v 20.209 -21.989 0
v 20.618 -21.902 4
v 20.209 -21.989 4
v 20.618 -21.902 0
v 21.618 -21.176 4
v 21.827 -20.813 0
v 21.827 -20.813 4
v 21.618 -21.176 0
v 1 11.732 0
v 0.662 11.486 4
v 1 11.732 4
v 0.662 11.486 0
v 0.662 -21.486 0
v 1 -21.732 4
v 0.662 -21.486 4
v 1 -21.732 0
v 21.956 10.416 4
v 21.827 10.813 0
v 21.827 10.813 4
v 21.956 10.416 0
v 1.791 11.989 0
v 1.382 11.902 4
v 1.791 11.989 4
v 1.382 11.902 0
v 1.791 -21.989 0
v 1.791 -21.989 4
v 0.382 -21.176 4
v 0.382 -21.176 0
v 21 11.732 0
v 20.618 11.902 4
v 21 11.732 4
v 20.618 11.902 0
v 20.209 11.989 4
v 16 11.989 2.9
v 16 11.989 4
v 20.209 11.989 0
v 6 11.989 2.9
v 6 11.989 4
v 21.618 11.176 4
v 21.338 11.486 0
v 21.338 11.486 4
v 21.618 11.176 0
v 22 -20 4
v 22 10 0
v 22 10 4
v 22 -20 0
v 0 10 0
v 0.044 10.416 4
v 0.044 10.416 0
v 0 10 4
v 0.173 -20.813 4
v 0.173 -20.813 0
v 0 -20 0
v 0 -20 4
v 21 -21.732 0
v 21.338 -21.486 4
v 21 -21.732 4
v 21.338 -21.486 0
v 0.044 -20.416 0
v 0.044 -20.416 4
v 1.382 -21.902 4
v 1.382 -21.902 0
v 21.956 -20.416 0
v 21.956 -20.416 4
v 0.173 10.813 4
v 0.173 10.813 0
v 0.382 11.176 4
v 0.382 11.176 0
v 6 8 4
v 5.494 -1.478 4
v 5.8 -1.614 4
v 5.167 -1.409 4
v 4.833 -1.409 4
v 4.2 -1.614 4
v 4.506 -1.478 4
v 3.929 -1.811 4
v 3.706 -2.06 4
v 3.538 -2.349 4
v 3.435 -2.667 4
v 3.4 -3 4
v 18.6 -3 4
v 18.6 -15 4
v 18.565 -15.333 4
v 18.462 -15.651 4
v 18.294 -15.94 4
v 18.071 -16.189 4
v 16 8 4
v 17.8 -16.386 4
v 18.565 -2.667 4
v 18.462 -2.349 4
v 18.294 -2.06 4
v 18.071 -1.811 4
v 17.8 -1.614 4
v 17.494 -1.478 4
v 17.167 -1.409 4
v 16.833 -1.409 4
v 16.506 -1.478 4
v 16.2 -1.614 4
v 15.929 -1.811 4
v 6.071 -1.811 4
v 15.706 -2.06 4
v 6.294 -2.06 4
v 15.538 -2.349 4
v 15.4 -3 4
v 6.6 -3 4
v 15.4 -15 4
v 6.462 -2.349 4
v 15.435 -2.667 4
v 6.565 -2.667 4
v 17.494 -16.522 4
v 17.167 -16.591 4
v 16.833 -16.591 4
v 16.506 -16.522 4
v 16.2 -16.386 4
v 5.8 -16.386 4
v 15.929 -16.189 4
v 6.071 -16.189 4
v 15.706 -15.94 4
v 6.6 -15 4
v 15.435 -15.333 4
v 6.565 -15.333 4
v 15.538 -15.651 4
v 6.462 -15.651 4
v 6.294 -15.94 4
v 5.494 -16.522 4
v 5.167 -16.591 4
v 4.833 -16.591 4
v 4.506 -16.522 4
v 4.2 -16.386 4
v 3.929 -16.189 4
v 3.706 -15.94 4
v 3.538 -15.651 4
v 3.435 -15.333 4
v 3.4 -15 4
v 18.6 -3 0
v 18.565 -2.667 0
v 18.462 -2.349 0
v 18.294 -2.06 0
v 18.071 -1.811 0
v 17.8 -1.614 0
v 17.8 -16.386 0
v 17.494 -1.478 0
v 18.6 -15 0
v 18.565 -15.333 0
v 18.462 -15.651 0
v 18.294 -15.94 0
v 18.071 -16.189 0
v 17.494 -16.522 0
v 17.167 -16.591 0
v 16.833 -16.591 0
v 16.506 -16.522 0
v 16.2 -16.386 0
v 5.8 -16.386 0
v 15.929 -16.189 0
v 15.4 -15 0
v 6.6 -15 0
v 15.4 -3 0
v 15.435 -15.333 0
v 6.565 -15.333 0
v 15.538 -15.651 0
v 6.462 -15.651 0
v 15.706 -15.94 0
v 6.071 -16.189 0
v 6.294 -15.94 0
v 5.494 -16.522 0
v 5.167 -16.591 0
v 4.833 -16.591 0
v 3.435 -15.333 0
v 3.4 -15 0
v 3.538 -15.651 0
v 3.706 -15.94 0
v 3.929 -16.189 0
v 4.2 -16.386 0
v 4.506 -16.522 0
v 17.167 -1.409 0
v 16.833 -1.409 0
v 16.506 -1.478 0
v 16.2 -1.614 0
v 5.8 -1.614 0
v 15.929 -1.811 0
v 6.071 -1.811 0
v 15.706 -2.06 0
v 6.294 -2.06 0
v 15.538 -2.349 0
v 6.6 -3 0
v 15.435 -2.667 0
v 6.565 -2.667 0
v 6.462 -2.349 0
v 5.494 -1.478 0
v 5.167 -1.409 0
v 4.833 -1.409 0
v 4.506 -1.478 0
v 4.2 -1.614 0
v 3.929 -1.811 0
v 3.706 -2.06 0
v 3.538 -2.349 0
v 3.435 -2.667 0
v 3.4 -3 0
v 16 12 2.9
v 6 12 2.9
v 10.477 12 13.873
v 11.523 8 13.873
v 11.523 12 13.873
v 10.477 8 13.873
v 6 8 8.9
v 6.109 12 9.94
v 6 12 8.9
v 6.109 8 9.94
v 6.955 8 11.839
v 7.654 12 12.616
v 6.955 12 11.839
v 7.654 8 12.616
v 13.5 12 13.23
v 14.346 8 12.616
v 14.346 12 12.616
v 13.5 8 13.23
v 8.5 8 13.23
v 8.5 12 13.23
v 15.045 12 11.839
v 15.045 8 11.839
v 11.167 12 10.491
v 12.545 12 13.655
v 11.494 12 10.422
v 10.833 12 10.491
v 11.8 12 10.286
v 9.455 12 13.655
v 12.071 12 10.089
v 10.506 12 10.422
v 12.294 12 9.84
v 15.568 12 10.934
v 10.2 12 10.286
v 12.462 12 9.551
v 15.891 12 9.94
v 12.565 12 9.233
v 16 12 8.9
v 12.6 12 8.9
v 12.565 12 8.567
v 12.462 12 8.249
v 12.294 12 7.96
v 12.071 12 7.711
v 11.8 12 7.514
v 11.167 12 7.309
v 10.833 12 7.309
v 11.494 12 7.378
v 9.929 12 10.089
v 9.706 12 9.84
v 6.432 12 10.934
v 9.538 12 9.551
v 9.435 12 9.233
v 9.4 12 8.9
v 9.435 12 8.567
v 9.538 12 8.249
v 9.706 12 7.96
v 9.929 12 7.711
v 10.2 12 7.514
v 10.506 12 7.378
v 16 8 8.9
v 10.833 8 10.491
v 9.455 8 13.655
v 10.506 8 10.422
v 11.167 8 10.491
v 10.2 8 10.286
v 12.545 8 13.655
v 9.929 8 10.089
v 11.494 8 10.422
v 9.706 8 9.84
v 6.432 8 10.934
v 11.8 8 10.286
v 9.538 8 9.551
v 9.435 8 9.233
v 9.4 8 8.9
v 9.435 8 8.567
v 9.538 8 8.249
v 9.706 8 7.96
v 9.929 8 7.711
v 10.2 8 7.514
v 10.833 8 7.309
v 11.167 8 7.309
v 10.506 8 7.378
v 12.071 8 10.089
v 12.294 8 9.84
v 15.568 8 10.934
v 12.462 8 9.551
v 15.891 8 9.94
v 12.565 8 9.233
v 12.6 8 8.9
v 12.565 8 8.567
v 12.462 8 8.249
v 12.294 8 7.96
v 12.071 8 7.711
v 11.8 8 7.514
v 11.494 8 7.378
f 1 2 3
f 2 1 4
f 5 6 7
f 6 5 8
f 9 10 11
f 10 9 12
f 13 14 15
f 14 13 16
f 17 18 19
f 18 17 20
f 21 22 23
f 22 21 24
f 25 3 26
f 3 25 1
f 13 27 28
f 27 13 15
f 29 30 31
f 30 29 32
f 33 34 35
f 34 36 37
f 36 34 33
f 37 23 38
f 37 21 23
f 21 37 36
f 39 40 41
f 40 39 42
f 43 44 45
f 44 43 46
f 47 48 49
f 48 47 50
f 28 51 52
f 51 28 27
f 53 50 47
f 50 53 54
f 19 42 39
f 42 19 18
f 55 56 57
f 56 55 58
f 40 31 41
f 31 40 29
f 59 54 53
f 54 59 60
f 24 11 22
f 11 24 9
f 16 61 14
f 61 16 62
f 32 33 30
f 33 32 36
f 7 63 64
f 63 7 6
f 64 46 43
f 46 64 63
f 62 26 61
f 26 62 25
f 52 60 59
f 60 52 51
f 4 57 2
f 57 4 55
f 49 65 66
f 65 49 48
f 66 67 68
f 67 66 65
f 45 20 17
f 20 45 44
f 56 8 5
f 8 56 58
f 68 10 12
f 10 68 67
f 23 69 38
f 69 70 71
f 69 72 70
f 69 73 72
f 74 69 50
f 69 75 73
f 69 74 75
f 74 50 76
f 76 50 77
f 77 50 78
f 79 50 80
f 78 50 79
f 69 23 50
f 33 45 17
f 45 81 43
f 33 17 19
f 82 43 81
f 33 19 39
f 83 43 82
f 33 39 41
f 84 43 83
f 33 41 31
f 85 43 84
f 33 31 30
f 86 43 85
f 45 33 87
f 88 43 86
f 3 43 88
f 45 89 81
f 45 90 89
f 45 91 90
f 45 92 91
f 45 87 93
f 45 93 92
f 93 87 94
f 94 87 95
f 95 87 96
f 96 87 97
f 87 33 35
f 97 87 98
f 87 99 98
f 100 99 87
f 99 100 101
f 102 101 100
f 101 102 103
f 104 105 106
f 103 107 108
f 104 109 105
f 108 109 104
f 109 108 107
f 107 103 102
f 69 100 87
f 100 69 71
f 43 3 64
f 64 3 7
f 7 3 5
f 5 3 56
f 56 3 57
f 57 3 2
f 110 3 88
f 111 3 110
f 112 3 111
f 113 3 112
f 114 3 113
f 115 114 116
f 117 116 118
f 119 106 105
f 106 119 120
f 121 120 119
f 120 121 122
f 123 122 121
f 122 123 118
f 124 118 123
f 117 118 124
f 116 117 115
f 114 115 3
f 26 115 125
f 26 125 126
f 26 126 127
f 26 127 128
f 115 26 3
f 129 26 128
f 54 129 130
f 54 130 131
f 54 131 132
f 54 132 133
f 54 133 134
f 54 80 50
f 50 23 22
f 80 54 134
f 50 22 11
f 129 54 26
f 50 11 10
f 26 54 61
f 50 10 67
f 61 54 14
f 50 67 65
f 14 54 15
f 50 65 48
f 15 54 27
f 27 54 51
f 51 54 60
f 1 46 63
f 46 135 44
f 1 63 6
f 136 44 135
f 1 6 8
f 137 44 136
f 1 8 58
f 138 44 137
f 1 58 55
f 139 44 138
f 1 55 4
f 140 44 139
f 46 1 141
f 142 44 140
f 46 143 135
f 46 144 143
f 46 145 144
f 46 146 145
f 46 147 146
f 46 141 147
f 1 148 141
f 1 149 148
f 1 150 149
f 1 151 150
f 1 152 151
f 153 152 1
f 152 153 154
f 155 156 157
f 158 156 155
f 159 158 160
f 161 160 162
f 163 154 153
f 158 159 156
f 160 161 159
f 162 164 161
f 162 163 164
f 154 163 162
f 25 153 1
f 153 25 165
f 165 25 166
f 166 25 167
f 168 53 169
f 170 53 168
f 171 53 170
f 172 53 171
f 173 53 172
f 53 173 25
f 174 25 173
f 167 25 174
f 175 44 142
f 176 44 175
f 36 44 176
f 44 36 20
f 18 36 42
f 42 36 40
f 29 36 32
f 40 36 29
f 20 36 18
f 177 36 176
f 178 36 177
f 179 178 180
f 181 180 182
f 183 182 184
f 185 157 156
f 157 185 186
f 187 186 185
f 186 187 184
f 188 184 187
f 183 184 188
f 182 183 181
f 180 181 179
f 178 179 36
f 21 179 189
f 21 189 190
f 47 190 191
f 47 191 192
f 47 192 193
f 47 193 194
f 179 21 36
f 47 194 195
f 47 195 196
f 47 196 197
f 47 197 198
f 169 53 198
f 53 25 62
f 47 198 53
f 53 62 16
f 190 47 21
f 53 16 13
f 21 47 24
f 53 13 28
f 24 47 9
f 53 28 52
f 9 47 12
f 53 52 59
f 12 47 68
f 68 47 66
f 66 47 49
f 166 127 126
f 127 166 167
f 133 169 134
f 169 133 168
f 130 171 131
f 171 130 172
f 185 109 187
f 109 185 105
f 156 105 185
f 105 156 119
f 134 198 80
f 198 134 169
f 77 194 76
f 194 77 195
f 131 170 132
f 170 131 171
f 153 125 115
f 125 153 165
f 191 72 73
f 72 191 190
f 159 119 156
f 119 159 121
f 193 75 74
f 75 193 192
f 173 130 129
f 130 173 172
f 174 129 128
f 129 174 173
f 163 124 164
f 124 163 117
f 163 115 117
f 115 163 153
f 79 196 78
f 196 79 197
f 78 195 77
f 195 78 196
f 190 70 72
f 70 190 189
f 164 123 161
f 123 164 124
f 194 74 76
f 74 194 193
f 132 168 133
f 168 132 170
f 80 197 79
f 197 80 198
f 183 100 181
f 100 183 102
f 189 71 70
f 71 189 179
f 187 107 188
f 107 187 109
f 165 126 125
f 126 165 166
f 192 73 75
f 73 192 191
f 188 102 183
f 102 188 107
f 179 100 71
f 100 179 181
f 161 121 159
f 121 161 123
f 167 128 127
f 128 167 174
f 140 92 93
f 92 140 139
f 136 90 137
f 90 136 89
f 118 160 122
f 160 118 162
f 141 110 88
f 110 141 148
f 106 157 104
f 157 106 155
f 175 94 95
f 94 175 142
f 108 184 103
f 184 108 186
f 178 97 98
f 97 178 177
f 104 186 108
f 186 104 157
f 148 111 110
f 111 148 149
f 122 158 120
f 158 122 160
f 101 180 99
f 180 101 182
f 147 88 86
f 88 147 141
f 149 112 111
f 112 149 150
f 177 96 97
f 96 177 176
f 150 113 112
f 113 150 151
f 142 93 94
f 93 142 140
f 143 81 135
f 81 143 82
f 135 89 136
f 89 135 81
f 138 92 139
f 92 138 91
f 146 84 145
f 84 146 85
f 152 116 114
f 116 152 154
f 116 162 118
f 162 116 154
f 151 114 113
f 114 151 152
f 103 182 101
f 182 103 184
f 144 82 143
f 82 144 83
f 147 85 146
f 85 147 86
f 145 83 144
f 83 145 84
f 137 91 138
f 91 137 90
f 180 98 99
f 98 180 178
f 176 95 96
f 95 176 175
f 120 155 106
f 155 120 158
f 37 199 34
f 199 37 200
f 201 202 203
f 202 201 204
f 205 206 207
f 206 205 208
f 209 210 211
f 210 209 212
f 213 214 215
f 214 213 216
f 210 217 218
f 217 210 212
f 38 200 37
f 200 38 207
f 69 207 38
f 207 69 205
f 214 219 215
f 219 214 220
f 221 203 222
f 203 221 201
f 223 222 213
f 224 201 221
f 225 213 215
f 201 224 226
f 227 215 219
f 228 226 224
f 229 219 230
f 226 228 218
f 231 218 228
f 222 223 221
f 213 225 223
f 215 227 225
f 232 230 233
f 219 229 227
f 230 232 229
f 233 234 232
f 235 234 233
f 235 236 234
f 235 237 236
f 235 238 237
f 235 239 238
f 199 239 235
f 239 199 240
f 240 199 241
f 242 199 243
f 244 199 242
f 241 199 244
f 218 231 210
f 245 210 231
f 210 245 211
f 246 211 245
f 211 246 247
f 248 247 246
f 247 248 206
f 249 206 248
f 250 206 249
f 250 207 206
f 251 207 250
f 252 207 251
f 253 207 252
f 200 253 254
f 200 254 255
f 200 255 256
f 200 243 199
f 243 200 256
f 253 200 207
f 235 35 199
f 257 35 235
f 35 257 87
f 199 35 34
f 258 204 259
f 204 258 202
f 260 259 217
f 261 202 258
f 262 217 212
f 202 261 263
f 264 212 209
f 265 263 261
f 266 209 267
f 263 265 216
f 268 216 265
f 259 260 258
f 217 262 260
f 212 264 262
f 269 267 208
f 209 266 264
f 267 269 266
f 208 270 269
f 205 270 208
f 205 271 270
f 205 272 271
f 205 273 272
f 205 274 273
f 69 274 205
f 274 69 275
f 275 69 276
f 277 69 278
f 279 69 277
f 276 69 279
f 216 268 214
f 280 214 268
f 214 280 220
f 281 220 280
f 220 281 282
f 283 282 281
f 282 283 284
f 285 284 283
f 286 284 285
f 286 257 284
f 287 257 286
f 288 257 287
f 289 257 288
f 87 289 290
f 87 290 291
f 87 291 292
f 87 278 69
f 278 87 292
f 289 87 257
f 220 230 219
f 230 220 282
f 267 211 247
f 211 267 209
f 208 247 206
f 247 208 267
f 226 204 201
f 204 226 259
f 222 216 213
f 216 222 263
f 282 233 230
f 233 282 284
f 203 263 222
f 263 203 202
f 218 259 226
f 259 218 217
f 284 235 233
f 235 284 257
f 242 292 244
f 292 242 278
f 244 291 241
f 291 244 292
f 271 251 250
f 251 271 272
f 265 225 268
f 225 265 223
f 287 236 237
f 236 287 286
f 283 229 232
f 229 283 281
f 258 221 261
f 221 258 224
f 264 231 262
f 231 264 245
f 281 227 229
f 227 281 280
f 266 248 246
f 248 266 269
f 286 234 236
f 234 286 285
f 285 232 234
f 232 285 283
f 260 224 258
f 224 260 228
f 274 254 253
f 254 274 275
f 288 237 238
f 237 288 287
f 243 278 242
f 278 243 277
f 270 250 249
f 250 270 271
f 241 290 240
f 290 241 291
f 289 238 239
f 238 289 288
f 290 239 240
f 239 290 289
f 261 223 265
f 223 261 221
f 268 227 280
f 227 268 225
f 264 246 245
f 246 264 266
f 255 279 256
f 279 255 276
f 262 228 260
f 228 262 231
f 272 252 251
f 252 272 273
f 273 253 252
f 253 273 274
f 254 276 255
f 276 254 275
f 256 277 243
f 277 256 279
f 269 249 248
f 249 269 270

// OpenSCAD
// width=35;
// height=35;

$fn=30;

// heat set M3 nut is 5mm diameter and 4mm thick/high

frameMount();

module frameMount(depth=4) {
   difference() {
      hull() {
         translate([2,10,0]) cylinder(r=2,h=depth);
         translate([2,-20,0]) cylinder(r=2,h=depth);
         translate([20,-20,0]) cylinder(r=2,h=depth);
         translate([20,10,0]) cylinder(r=2,h=depth);
      }
      hull() {
         translate([5,-3,-1]) cylinder(d=3.2, h=depth+2);
         translate([5,-15,-1]) cylinder(d=3.2, h=depth+2);
      }
      hull() {
         translate([17,-3,-1]) cylinder(d=3.2, h=depth+2);
         translate([17,-15,-1]) cylinder(d=3.2, h=depth+2);
      }
   }

   translate([11,12,5+depth-0.1]) rotate([90,0,0]) difference() {
      hull() {
         cylinder(d=10,h=4);
         translate([-5,-6,0]) cube([10,1,4]);
      }
      translate([0,0,-1]) cylinder(d=3.2,h=10);
   }
}
